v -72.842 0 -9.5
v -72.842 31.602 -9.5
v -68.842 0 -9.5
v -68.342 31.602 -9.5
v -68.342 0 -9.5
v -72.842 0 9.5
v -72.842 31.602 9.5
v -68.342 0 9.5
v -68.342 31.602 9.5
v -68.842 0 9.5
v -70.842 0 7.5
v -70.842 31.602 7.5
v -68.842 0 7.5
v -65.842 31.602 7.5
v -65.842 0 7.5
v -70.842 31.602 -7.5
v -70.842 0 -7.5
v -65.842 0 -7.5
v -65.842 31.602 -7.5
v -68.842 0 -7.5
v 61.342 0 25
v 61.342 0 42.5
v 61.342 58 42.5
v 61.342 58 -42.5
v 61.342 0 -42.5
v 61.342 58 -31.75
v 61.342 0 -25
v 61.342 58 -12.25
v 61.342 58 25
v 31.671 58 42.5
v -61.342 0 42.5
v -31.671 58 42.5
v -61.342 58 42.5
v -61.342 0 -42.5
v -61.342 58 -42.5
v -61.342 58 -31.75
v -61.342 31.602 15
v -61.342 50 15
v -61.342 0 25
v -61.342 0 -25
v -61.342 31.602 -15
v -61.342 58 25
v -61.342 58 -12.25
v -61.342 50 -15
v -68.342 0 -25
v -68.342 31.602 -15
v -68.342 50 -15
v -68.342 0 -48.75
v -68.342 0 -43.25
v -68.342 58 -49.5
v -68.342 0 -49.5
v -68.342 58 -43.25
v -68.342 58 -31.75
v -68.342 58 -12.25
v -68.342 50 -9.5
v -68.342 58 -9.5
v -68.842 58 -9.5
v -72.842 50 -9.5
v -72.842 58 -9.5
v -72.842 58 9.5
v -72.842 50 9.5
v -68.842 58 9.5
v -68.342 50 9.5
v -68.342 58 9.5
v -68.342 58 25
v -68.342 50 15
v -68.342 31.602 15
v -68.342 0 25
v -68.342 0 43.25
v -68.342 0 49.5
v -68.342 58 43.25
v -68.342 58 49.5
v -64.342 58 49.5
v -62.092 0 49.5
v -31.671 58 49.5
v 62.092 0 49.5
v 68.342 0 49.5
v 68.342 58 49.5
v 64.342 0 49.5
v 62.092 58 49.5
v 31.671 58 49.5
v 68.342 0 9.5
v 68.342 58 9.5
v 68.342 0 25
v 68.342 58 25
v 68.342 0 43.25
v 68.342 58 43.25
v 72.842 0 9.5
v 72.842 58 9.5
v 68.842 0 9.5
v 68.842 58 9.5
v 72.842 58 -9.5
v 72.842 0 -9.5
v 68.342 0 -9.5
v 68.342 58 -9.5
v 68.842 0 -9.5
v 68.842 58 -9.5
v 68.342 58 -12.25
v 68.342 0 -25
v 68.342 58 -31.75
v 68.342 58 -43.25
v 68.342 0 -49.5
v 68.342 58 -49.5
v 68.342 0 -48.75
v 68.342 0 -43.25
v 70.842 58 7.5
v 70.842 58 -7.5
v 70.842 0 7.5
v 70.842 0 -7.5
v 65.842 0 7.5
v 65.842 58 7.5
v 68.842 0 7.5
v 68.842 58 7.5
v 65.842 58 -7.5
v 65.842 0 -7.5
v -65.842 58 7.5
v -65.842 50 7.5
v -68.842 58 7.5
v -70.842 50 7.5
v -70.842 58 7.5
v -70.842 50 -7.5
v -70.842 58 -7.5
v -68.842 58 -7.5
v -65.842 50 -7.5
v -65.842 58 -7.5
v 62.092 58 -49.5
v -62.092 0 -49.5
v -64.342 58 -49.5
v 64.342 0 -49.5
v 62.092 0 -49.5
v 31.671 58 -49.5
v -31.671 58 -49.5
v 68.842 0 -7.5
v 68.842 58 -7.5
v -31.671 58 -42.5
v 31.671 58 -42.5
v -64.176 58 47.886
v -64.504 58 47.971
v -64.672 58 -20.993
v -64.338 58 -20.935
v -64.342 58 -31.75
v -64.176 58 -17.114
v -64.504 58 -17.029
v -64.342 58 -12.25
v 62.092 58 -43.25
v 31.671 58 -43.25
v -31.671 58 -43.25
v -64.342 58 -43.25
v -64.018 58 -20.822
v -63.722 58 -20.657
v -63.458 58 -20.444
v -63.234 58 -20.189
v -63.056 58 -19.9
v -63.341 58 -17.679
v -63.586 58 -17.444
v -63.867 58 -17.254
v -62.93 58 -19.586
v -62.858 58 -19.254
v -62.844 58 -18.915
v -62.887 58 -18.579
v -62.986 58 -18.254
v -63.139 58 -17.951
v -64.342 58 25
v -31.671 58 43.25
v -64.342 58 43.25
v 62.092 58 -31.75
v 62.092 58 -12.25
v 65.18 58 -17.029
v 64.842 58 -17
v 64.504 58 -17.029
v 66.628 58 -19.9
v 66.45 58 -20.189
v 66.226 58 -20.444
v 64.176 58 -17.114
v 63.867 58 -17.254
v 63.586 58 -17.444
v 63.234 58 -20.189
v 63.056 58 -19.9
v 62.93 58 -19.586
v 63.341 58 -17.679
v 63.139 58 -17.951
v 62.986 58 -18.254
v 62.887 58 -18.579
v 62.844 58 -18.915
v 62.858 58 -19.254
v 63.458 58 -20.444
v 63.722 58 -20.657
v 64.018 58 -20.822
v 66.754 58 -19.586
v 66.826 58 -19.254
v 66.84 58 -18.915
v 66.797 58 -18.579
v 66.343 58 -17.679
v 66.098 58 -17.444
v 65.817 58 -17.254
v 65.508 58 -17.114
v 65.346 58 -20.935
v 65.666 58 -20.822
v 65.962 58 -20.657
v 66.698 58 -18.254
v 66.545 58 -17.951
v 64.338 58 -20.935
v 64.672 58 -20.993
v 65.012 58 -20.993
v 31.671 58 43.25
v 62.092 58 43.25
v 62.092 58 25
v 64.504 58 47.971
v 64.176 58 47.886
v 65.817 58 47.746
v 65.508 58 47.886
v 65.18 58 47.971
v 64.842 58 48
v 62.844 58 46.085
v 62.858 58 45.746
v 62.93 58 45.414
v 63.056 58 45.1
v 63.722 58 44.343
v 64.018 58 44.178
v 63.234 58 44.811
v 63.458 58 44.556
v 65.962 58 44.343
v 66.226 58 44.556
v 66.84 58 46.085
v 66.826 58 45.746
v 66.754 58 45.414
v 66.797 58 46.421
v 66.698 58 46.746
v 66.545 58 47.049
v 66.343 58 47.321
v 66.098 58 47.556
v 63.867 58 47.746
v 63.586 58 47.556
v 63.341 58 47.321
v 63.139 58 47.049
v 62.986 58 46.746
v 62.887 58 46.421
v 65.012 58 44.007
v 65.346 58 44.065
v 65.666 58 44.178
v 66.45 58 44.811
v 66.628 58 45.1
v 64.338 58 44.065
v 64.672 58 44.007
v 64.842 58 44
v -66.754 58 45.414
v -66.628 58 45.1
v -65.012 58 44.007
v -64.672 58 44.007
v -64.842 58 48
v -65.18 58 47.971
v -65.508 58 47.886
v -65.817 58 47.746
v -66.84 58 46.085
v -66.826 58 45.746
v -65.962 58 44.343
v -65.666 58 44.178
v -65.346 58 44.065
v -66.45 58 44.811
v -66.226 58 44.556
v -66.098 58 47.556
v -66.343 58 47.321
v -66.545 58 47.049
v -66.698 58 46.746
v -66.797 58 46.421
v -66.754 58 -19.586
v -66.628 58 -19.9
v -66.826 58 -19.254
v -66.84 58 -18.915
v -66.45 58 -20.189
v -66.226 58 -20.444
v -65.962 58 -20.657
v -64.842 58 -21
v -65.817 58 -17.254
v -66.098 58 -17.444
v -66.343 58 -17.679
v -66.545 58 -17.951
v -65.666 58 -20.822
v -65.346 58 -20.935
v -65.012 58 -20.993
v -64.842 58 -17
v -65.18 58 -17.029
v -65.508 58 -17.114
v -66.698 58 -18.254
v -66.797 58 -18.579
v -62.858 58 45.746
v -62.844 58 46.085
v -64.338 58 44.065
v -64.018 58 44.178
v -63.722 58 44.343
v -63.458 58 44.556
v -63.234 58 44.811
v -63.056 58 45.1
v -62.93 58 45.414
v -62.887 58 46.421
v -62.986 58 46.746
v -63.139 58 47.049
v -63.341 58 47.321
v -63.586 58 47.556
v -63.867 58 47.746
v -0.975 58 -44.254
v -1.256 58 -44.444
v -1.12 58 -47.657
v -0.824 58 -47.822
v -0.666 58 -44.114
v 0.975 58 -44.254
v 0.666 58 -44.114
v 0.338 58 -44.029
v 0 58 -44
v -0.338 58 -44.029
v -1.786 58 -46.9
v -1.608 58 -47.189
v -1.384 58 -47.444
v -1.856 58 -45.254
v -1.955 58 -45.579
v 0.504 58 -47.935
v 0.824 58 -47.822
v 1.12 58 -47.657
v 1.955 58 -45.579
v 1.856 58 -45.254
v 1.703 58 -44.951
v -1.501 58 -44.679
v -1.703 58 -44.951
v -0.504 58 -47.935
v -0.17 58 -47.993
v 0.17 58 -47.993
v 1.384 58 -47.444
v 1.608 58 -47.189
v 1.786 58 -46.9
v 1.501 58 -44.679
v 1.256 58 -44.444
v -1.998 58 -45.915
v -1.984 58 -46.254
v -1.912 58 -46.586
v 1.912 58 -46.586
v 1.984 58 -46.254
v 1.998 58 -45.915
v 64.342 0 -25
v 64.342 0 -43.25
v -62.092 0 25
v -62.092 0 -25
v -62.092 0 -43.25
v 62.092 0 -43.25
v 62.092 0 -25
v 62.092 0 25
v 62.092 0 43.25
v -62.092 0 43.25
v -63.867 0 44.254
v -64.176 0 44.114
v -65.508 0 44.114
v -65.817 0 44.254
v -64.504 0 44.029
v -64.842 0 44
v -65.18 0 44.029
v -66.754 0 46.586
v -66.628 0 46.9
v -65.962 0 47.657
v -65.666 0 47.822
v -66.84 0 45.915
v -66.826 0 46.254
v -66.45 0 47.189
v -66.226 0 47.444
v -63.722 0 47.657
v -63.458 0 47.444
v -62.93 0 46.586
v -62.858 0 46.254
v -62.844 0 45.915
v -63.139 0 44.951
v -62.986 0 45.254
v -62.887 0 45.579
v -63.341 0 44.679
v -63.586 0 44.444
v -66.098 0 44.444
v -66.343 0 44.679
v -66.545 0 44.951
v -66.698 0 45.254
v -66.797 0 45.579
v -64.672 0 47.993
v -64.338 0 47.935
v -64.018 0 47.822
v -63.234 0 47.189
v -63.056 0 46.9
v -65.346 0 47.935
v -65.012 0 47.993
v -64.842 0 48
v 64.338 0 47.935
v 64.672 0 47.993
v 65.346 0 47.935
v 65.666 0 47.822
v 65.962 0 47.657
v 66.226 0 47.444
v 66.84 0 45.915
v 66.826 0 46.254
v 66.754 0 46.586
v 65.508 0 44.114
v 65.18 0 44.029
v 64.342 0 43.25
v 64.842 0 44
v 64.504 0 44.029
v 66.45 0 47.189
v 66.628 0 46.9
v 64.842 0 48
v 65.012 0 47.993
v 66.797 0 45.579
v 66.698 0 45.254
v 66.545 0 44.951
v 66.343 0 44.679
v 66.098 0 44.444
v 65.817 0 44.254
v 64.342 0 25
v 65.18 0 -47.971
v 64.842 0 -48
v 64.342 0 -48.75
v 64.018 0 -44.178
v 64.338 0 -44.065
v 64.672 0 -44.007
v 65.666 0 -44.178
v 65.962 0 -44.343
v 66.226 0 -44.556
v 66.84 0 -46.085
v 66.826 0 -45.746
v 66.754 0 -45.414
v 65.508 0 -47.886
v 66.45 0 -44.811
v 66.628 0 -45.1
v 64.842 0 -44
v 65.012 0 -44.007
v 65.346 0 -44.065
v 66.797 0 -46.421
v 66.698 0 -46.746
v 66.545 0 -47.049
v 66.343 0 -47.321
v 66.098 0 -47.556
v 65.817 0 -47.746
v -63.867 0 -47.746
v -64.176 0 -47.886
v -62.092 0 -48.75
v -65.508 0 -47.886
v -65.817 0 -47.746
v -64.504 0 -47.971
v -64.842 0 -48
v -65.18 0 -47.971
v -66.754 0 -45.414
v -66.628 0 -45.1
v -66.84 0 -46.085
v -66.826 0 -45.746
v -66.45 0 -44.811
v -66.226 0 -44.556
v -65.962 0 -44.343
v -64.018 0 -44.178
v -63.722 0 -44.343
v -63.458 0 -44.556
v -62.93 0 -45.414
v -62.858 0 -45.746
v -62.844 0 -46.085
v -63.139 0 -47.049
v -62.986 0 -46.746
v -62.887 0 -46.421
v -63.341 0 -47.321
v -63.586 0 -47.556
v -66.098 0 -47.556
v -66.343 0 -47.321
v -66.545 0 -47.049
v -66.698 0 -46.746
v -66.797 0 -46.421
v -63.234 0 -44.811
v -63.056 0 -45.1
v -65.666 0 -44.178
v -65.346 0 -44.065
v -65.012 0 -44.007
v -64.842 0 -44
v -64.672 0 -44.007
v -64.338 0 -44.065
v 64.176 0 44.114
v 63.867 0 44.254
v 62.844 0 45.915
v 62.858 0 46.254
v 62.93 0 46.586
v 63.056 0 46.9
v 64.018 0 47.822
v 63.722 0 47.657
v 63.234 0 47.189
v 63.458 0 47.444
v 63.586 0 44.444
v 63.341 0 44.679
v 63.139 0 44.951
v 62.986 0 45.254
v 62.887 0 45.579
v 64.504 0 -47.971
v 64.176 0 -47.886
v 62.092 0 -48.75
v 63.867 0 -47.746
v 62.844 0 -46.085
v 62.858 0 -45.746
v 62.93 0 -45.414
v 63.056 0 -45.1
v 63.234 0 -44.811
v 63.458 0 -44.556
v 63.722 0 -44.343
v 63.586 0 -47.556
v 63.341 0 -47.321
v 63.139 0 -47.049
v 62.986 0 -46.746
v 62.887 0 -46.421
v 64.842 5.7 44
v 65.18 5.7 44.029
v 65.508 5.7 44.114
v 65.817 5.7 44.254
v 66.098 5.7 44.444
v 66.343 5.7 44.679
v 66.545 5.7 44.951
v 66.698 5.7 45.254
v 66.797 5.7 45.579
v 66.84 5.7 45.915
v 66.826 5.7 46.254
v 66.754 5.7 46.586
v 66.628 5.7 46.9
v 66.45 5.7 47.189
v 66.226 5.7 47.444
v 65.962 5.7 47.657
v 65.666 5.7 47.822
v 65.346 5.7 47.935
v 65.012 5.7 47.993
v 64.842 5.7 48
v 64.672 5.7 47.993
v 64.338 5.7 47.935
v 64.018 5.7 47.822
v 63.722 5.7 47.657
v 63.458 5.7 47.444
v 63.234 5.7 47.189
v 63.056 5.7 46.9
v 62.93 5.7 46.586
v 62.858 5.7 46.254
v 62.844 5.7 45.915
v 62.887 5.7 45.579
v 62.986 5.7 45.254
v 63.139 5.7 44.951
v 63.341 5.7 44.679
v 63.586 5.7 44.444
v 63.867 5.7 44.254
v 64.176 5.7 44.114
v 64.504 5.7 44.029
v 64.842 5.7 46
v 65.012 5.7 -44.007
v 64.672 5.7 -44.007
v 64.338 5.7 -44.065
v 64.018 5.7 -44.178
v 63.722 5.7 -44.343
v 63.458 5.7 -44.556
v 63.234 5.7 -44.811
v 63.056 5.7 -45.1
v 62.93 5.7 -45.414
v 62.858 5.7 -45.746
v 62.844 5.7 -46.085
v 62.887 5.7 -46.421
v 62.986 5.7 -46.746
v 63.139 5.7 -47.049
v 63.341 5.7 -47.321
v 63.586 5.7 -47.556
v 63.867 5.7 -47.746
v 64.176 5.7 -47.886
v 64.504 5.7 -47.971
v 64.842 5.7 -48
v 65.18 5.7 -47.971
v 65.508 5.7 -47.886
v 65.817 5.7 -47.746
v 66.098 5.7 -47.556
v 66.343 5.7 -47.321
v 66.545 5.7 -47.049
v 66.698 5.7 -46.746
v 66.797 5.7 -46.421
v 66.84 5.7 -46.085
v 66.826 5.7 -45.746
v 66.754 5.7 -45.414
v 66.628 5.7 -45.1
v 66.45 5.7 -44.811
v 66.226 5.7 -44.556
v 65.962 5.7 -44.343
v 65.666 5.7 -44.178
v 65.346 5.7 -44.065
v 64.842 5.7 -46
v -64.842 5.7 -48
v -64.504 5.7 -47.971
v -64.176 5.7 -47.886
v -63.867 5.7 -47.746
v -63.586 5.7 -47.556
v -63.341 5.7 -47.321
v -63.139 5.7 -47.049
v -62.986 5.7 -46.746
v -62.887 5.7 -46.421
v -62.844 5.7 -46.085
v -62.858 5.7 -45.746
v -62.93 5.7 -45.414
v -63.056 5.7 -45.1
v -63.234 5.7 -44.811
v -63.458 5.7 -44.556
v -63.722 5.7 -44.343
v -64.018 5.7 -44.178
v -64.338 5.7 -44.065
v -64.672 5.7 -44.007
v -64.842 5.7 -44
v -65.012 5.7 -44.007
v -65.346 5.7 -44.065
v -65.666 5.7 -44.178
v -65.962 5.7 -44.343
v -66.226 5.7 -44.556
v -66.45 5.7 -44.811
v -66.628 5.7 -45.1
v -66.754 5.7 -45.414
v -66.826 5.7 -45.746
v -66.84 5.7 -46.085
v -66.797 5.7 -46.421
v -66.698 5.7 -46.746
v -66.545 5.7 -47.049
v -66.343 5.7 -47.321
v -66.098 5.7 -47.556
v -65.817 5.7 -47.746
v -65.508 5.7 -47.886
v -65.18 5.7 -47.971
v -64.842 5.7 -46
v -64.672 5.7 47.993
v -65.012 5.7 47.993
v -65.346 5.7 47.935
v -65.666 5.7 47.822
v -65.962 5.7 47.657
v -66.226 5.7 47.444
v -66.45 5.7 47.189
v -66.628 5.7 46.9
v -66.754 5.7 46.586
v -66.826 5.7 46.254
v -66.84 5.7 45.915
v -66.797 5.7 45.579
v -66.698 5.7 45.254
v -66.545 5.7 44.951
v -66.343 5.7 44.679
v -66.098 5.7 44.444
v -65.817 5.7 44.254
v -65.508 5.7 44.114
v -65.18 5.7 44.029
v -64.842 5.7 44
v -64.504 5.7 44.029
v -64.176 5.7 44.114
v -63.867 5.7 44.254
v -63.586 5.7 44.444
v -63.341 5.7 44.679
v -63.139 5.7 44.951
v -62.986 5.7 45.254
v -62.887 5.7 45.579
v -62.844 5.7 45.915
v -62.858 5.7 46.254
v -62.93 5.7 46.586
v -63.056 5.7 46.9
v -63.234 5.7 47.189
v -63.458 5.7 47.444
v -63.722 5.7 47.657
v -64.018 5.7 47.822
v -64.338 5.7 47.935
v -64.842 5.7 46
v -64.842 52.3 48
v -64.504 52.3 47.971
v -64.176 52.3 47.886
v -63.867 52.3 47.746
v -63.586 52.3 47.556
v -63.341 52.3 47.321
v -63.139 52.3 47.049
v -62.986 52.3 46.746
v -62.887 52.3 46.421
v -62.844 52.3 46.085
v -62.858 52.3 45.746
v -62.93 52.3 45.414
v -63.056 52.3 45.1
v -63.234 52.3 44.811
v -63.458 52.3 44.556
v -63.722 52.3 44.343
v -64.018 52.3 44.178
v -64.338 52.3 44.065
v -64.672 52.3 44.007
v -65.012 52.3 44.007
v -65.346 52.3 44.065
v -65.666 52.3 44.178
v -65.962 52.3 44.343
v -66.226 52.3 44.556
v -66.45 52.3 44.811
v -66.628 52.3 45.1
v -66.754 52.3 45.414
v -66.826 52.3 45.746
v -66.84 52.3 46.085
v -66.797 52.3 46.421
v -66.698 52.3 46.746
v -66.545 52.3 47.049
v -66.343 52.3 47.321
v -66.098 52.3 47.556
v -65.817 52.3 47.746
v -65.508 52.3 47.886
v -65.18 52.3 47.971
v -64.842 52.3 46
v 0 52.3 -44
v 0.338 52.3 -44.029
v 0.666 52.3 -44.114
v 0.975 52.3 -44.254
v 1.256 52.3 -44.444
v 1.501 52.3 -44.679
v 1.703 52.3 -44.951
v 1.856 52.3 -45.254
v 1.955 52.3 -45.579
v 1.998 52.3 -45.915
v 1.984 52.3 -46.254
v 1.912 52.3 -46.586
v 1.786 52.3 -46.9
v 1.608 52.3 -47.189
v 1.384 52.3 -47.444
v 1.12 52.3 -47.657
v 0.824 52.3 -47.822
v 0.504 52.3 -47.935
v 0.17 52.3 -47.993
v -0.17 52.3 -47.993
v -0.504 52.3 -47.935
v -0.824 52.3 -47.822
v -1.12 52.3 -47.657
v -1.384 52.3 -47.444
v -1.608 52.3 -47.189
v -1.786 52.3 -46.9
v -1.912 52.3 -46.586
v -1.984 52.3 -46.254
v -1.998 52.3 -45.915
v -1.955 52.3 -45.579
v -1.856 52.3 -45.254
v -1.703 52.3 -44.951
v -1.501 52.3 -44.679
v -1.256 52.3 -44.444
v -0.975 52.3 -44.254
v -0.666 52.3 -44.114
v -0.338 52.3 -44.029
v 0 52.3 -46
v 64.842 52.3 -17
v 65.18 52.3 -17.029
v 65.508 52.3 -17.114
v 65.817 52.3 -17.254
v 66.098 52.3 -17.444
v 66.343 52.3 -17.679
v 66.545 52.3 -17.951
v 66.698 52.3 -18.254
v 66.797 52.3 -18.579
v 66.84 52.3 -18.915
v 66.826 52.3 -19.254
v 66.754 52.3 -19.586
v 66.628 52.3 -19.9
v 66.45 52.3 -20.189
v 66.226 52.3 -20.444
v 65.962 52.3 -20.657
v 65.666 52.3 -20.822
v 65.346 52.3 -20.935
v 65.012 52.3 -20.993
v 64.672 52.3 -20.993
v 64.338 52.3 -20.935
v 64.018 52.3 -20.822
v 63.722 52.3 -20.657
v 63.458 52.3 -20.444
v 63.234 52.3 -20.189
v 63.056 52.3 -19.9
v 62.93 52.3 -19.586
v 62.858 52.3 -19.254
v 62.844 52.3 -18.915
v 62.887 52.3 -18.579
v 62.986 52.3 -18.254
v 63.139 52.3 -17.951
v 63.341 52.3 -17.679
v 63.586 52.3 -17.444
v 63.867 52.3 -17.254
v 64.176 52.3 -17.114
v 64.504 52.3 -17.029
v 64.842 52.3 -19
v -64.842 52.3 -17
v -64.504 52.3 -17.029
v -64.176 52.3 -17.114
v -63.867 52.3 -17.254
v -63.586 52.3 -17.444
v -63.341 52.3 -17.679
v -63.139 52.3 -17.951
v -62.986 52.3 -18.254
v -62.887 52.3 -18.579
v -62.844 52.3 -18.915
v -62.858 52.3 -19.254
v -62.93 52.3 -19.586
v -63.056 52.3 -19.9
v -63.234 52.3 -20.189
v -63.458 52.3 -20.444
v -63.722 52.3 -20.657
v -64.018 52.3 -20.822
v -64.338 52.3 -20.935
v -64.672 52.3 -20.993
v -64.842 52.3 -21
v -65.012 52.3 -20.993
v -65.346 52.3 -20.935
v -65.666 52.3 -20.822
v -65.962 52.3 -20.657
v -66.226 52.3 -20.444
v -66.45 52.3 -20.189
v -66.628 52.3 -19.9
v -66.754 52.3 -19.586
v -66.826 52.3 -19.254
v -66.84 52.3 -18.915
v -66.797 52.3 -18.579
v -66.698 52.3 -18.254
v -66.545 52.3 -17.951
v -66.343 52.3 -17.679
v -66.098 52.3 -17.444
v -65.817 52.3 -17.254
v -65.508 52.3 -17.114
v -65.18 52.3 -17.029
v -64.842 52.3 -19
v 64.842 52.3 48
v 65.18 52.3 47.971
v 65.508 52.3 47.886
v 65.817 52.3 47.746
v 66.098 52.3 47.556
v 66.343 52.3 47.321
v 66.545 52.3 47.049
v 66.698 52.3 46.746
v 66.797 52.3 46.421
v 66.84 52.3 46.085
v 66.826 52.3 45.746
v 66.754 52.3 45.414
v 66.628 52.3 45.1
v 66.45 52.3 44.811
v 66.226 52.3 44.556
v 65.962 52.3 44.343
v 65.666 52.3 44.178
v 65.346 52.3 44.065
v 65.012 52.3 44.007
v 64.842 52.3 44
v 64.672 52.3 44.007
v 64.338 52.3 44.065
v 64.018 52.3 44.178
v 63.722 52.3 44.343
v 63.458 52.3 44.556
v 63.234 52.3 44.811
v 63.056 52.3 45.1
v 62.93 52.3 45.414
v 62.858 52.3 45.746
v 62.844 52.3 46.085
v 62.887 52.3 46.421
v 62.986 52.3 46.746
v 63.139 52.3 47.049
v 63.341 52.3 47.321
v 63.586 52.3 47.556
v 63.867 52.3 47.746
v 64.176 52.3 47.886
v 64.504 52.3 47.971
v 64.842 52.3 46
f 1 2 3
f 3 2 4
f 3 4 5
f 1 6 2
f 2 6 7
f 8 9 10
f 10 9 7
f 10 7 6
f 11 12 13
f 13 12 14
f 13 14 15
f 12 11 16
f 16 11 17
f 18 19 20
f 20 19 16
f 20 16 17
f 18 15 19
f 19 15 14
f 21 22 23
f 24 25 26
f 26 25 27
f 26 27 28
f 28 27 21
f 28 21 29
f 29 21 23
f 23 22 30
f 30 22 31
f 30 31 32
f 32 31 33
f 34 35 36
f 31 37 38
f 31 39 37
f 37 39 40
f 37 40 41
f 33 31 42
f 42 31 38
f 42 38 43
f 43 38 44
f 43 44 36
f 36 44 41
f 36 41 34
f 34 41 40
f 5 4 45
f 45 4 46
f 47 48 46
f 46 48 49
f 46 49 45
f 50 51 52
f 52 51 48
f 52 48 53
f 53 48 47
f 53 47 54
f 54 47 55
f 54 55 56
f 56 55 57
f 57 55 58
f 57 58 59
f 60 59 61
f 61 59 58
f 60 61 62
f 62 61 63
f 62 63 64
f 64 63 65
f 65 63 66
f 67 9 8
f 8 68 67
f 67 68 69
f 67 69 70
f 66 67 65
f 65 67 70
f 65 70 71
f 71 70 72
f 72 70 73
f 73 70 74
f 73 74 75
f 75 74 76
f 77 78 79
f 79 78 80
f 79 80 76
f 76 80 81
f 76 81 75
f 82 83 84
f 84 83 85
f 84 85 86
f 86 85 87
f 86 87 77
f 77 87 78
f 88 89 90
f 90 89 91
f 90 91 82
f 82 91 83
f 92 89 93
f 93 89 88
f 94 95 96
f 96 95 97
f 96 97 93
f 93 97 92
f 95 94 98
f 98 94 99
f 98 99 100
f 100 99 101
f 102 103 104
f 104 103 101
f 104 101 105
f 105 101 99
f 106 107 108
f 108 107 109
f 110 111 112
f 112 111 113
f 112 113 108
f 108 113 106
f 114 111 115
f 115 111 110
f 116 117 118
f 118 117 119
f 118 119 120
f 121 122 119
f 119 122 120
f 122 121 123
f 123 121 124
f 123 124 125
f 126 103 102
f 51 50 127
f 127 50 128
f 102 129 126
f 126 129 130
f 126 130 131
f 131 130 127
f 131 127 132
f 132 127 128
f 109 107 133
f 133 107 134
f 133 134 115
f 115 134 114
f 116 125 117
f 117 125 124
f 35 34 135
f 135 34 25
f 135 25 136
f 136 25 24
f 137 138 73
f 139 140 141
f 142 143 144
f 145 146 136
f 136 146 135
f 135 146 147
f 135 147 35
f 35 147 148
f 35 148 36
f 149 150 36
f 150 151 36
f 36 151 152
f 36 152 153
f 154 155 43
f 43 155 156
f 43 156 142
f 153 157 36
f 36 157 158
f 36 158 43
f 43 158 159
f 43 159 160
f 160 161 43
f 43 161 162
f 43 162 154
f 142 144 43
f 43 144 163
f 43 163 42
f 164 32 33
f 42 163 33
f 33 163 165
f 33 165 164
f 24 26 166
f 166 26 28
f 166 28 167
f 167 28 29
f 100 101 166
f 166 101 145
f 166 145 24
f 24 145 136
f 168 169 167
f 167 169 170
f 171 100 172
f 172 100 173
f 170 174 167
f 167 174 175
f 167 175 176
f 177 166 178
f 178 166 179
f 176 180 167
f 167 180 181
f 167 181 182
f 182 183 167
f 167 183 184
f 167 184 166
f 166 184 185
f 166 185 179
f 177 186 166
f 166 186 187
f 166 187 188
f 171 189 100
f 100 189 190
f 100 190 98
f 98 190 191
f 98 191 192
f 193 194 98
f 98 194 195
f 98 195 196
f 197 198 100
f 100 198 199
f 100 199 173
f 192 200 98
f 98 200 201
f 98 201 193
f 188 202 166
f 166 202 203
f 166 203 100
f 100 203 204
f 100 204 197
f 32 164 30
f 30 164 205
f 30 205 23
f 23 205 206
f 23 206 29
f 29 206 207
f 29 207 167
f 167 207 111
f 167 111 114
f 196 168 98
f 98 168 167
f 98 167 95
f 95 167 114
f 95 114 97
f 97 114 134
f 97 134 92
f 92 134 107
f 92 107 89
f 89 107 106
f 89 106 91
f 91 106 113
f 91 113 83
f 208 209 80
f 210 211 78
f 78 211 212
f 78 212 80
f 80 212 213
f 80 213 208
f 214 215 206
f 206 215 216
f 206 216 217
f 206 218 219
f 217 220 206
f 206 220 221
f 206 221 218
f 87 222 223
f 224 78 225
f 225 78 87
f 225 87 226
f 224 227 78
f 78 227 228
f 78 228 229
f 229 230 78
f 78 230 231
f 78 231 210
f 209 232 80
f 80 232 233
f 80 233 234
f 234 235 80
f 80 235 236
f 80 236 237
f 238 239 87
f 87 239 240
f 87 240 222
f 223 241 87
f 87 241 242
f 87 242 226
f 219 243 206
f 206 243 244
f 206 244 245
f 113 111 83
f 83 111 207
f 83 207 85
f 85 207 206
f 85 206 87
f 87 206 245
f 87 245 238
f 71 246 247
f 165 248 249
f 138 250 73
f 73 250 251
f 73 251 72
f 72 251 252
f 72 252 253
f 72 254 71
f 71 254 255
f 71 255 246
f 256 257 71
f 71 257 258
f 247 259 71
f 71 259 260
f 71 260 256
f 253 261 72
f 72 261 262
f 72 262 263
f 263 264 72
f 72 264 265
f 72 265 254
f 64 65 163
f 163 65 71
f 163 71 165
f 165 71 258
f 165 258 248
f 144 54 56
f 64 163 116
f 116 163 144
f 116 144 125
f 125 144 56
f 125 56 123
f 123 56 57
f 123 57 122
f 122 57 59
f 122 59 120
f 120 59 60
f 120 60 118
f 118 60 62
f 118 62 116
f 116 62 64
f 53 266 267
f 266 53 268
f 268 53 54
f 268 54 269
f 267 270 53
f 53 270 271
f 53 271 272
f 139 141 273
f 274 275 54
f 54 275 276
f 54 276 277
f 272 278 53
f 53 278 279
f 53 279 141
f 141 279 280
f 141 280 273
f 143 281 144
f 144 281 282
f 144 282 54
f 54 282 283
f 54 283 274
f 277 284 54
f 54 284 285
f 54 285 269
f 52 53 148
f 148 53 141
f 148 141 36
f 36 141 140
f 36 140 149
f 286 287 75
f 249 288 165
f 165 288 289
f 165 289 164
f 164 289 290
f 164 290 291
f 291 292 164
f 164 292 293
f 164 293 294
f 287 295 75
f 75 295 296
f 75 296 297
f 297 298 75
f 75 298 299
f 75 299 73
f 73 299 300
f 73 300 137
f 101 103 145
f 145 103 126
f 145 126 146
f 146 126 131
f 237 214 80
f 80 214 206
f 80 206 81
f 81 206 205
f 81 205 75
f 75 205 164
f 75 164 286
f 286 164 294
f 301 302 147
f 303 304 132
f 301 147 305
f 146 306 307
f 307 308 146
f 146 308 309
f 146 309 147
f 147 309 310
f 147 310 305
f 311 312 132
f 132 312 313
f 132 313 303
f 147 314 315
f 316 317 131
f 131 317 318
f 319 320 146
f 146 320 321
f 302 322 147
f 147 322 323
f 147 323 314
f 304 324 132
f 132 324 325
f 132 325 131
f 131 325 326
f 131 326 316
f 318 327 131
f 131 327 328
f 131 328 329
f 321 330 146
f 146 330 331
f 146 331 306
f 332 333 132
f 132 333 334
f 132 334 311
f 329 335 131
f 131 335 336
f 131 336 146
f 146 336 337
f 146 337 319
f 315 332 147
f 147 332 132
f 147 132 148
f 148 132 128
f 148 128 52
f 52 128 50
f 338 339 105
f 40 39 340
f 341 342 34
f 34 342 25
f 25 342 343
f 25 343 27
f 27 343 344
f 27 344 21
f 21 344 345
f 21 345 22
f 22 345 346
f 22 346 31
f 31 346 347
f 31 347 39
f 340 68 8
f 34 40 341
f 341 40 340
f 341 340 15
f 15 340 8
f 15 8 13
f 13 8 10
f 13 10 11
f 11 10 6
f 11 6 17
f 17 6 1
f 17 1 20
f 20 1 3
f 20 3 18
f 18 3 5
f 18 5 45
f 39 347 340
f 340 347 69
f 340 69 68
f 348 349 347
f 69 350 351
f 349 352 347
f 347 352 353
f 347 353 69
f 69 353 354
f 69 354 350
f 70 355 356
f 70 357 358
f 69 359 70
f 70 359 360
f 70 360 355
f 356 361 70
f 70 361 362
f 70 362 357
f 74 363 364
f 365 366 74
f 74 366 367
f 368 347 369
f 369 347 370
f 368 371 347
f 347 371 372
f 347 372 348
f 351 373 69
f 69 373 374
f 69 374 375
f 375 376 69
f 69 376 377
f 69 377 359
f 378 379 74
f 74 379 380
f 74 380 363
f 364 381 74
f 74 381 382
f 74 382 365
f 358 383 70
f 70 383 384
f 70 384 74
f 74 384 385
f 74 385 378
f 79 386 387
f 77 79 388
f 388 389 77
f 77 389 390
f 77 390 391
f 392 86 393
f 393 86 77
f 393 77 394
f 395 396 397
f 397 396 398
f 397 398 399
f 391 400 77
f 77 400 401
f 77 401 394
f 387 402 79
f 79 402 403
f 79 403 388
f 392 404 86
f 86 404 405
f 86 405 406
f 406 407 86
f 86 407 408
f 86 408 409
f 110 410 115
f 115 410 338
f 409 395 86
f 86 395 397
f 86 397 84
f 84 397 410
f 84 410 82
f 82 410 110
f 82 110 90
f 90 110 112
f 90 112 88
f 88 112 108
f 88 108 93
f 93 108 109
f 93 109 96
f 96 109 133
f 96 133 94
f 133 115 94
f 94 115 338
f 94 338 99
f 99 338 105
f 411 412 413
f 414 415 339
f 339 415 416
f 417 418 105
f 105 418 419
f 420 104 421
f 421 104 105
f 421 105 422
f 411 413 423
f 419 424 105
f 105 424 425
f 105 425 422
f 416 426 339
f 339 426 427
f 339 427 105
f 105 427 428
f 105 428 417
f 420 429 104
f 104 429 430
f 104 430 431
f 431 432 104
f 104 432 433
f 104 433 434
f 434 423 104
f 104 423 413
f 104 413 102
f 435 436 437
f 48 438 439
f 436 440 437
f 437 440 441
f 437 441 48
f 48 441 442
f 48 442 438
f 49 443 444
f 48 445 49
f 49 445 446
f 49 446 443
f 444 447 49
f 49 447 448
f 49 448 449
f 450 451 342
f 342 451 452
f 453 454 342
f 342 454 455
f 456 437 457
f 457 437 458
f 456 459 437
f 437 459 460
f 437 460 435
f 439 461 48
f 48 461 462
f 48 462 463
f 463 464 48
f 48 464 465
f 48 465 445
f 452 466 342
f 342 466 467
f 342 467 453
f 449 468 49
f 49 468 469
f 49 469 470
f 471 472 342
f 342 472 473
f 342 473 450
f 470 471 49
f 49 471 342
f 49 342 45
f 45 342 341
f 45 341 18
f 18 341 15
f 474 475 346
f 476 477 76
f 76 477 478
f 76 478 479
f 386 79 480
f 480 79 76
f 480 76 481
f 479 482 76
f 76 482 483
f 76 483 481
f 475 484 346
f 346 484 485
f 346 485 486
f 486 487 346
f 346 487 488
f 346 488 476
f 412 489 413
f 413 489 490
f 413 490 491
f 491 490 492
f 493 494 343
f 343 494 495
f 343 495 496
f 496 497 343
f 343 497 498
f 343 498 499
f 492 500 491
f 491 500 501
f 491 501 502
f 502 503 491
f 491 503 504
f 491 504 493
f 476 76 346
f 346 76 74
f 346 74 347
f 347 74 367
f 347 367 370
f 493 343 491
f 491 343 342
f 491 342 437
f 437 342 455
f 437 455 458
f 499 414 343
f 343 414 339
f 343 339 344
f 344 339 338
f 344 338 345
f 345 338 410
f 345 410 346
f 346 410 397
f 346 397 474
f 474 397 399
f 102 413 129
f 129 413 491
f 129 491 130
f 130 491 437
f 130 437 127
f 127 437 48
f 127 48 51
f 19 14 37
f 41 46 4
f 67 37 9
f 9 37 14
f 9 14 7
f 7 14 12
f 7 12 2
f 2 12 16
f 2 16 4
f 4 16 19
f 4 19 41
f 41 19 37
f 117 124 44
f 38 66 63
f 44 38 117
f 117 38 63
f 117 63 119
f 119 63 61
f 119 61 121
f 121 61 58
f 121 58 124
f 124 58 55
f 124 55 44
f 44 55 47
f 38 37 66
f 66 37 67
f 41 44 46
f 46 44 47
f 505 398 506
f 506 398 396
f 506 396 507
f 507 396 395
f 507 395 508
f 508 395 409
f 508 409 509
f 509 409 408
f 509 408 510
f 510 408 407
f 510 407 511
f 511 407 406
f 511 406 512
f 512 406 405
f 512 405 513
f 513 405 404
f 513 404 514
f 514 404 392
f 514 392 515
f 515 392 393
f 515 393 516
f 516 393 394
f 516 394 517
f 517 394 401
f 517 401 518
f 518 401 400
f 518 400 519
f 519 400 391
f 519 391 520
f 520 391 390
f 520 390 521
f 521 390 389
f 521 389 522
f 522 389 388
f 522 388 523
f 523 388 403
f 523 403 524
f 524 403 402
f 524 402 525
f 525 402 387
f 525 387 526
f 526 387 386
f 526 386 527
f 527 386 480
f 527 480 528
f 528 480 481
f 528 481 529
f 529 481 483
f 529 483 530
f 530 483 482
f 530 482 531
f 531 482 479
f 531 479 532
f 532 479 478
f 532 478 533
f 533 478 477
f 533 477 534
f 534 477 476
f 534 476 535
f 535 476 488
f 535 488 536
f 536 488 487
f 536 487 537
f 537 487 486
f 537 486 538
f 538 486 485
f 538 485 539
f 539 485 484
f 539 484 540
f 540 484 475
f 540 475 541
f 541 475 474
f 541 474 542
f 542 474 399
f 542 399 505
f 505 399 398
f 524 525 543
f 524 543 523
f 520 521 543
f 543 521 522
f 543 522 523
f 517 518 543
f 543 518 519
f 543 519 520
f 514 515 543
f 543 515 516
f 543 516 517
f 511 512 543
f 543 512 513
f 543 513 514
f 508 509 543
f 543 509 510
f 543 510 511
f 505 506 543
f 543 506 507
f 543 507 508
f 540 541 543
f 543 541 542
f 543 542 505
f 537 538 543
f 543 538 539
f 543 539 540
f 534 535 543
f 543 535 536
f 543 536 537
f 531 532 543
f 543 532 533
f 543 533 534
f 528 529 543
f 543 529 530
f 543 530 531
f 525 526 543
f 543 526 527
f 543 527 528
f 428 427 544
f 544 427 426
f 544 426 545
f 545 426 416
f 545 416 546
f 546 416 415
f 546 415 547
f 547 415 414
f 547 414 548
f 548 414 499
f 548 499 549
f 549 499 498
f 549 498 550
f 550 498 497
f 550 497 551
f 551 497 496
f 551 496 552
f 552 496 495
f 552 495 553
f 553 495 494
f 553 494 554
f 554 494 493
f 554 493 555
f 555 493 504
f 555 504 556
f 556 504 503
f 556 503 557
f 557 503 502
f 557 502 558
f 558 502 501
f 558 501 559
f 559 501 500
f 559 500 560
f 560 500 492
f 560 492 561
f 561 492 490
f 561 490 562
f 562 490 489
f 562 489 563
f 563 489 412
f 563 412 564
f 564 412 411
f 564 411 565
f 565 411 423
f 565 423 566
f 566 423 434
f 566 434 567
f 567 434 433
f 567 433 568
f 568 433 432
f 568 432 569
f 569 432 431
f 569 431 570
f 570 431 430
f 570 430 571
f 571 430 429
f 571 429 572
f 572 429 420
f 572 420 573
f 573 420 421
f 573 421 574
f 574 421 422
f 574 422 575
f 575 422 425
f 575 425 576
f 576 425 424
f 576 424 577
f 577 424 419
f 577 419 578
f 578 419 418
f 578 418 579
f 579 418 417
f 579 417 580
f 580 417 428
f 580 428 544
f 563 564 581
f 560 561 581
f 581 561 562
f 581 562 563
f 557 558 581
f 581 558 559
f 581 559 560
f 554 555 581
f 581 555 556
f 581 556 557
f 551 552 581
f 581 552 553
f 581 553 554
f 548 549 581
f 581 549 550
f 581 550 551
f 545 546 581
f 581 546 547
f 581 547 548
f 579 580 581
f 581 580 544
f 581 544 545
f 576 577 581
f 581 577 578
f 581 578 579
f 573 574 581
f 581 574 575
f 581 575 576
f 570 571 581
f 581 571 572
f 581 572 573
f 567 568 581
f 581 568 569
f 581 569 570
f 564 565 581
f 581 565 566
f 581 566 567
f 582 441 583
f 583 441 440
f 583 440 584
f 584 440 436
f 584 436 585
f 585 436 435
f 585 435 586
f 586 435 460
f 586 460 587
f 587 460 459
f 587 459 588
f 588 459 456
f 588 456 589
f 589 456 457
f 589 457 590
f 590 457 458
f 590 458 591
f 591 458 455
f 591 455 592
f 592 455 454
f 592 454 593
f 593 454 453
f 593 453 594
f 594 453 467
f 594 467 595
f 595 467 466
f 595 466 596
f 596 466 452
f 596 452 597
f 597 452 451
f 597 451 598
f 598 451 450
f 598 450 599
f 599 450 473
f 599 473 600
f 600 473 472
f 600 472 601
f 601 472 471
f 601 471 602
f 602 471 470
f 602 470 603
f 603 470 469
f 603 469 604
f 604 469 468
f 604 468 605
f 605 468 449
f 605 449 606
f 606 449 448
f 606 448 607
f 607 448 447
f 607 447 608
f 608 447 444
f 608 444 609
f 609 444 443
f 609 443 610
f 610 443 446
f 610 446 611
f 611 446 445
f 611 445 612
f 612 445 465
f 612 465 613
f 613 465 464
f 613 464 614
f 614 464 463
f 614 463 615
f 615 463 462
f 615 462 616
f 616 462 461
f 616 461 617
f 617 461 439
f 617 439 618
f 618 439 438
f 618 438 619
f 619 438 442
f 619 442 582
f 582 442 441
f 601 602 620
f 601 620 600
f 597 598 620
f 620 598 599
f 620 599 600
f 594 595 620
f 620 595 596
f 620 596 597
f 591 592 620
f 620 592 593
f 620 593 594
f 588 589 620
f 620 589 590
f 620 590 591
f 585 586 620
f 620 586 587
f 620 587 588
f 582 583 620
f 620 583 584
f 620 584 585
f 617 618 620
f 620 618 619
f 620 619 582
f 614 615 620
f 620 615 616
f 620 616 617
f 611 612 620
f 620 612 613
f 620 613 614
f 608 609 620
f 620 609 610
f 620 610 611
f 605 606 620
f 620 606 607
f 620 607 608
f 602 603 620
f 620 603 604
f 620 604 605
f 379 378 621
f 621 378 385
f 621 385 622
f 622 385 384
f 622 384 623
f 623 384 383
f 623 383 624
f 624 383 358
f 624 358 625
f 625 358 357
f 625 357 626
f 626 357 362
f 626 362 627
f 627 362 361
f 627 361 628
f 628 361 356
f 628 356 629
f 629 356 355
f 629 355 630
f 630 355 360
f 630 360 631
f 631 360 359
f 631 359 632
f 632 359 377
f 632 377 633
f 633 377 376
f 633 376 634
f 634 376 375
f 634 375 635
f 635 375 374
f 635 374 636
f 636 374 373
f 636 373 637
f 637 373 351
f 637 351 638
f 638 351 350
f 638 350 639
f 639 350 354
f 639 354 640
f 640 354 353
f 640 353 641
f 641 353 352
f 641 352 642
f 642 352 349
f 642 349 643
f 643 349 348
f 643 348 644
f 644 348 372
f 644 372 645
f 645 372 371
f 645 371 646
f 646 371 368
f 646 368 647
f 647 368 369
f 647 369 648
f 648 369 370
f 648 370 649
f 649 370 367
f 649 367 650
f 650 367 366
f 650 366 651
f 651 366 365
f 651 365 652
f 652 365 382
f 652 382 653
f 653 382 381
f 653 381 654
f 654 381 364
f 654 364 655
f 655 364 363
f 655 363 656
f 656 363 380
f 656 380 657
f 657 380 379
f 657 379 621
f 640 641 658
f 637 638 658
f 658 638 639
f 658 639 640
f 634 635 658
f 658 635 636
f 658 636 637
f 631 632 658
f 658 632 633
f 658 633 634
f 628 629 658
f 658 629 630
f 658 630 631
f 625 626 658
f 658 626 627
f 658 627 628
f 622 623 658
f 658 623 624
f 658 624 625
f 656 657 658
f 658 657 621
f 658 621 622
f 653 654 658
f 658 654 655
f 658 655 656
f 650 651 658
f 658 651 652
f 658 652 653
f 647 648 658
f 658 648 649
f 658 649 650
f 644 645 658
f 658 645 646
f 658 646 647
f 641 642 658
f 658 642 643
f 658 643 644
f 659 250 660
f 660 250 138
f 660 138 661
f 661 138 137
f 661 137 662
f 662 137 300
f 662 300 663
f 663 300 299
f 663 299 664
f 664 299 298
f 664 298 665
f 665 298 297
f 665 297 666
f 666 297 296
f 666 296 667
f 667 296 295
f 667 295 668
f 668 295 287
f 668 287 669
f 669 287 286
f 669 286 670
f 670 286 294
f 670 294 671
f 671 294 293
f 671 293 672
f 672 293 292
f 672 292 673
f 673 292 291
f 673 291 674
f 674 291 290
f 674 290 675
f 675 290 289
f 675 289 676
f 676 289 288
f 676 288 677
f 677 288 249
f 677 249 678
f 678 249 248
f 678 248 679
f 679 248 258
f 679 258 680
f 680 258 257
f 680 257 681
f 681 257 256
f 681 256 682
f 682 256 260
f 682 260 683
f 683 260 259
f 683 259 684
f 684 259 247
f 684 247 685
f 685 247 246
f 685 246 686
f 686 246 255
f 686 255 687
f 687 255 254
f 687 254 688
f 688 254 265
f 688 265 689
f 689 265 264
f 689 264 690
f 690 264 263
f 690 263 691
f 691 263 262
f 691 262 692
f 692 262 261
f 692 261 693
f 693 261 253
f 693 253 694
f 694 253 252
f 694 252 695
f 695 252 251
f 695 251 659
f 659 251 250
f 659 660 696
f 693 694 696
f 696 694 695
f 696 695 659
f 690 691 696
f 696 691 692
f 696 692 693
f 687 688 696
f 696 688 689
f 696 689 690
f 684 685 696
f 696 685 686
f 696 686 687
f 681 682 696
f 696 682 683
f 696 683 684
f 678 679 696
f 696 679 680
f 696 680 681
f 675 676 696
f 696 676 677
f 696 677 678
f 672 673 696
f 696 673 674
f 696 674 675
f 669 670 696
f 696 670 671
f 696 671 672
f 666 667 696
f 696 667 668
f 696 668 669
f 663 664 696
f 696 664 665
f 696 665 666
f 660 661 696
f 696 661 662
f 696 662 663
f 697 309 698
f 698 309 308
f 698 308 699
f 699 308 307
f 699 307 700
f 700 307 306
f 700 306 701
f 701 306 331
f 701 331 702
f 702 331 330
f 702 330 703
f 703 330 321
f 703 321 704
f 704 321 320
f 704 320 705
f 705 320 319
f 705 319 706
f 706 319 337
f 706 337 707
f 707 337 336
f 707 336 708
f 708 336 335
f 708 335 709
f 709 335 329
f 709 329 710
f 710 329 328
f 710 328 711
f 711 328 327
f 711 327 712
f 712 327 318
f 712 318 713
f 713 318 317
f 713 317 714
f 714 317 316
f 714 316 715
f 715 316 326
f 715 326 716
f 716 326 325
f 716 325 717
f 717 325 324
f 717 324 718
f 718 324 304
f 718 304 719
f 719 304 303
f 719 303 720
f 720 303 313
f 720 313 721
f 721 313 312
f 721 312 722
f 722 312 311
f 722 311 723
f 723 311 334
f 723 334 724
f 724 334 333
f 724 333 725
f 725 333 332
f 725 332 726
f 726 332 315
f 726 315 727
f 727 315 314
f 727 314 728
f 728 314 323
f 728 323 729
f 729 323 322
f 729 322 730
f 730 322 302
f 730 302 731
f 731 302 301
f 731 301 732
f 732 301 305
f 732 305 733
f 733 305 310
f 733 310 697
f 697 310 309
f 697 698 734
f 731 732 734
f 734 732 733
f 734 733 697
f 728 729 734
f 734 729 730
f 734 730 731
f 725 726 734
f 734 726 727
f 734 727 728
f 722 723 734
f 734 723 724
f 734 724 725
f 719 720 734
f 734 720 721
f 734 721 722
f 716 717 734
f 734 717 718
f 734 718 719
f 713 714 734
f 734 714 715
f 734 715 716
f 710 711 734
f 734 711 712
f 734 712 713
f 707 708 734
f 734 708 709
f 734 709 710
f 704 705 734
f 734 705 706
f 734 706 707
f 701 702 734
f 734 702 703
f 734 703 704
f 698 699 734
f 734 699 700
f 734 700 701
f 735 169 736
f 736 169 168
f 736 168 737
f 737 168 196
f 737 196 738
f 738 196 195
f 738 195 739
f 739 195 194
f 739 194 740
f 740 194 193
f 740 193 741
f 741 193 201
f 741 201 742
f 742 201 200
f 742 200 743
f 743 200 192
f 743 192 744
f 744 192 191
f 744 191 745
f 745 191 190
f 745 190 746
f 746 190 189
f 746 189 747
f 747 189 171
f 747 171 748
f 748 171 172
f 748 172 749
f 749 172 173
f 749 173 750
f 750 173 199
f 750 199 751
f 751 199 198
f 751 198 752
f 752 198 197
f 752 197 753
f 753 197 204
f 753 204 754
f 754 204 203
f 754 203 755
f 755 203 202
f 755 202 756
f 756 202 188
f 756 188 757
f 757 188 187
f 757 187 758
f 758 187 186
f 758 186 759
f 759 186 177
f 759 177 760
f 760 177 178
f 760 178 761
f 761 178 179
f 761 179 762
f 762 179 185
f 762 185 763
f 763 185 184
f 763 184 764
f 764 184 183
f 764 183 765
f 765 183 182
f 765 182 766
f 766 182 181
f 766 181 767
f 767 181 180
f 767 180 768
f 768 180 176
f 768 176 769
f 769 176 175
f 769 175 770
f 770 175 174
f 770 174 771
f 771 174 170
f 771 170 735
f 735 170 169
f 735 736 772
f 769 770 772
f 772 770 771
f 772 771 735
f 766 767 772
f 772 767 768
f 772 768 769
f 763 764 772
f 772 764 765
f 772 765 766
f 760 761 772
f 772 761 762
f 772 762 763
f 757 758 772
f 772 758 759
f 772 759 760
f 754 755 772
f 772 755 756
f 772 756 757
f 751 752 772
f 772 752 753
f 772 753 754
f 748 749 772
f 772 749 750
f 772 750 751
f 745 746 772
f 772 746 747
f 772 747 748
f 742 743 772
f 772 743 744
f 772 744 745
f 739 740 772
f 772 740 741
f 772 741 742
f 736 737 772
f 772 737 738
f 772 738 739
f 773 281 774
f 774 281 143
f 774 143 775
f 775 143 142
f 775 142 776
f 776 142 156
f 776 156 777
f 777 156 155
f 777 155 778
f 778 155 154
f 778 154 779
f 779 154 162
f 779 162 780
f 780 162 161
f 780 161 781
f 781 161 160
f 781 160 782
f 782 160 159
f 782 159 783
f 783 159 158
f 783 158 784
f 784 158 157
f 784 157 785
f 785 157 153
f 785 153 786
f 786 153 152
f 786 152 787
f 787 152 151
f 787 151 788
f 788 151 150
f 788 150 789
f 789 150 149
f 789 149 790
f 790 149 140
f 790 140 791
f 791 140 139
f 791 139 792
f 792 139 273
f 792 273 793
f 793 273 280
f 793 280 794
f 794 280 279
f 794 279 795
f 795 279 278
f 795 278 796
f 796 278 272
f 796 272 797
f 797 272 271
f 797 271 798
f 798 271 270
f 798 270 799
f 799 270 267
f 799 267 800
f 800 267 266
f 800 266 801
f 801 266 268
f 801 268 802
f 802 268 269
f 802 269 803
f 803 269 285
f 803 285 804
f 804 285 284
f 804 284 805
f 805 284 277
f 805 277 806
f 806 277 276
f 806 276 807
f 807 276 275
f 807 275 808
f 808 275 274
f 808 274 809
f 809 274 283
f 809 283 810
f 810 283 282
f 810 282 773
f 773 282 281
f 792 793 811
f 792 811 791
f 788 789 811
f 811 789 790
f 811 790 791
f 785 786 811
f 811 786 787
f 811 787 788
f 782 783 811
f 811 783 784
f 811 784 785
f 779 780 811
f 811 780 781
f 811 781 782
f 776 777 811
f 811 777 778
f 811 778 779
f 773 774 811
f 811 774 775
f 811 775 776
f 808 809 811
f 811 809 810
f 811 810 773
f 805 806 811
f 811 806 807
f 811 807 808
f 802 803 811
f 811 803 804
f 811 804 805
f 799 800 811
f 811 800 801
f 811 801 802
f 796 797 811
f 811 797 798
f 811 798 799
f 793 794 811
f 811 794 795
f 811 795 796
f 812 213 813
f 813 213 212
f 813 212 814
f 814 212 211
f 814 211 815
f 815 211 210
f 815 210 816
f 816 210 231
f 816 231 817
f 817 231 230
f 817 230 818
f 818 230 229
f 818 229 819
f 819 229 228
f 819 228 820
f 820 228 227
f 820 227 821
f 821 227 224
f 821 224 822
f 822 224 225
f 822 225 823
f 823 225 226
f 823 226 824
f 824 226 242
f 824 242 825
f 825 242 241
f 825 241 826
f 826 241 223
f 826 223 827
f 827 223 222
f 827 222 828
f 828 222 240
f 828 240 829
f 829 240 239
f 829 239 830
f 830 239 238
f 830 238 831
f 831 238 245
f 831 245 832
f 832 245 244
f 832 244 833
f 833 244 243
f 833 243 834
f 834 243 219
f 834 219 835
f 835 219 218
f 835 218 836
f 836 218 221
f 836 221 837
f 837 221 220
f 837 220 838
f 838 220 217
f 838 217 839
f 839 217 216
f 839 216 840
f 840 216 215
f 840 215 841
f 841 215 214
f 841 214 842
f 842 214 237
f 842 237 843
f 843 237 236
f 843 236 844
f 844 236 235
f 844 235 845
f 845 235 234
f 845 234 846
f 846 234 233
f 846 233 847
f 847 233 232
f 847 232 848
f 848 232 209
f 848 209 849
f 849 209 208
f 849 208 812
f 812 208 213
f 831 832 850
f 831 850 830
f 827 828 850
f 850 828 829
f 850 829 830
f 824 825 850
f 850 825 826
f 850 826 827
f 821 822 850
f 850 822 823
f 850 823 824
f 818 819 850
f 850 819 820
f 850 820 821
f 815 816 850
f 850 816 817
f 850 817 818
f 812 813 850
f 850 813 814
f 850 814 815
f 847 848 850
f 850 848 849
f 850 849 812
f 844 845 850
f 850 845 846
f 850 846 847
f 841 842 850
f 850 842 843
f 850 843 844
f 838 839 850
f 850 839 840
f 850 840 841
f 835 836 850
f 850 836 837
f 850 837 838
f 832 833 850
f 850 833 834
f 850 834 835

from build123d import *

# Parameters (mm, degrees)
SKETCH1_W               = 122.684034766
SKETCH1_H               = 85
BOSS_EXTRUDE1_DEPTH     = 58
SKETCH2_W               = 30
SKETCH2_H               = 18.398042608
CUT_EXTRUDE1_DEPTH      = 11.5
CUT_EXTRUDE3_DEPTH      = 5.7
CUT_EXTRUDE3_DEPTH_BACK = 0.0001
SKETCH3_R               = 2
CUT_EXTRUDE4_START      = -5.7
SKETCH5_R               = 2
CUT_EXTRUDE4_DEPTH      = 5.7


with BuildPart() as part:
    # Sketch1 → Boss-Extrude1 (new body)
    # profile 1 of 5: a face of its own
    with BuildSketch(Plane(origin=(0, 0, 0), x_dir=(1, 0, 0), z_dir=(0, 1, 0))):
        Polygon((-68.342017383, -9.5), (-68.342017383, -49.5), (68.342017383, -49.5), (68.342017383, -9.5), (63.842017383, -9.5), (63.842017383, 9.5), (68.342017383, 9.5), (68.342017383, 49.5), (-68.342017383, 49.5), (-68.342017383, 9.5), (-63.842017383, 9.5), (-63.842017383, -9.5), align=None)
        Rectangle(SKETCH1_W, SKETCH1_H, mode=Mode.SUBTRACT)
    # profile 2 of 5: a face of its own
    with BuildSketch(Plane(origin=(0, 0, 0), x_dir=(1, 0, 0), z_dir=(0, 1, 0))):
        Polygon((63.842017383, -9.5), (68.342017383, -9.5), (68.342017383, -7.5), (65.842017383, -7.5), (65.842017383, 7.5), (68.342017383, 7.5), (68.342017383, 9.5), (63.842017383, 9.5), align=None)
    # profile 3 of 5: a face of its own
    with BuildSketch(Plane(origin=(0, 0, 0), x_dir=(1, 0, 0), z_dir=(0, 1, 0))):
        Polygon((68.342017383, -7.5), (68.342017383, -9.5), (72.842017383, -9.5), (72.842017383, 9.5), (68.342017383, 9.5), (68.342017383, 7.5), (70.842017383, 7.5), (70.842017383, -7.5), align=None)
    # profile 4 of 5: a face of its own
    with BuildSketch(Plane(origin=(0, 0, 0), x_dir=(1, 0, 0), z_dir=(0, 1, 0))):
        Polygon((-72.842017383, -9.5), (-68.342017383, -9.5), (-68.342017383, -7.5), (-70.842017383, -7.5), (-70.842017383, 7.5), (-68.342017383, 7.5), (-68.342017383, 9.5), (-72.842017383, 9.5), align=None)
    # profile 5 of 5: a face of its own
    with BuildSketch(Plane(origin=(0, 0, 0), x_dir=(1, 0, 0), z_dir=(0, 1, 0))):
        Polygon((-68.342017383, -7.5), (-68.342017383, -9.5), (-63.842017383, -9.5), (-63.842017383, 9.5), (-68.342017383, 9.5), (-68.342017383, 7.5), (-65.842017383, 7.5), (-65.842017383, -7.5), align=None)
    extrude(amount=BOSS_EXTRUDE1_DEPTH)

    # Sketch2 → Cut-Extrude1 (cut)
    with BuildSketch(Plane.ZY.offset(72.842017383)):
        with Locations((0, 40.800978696)):
            Rectangle(SKETCH2_W, SKETCH2_H)
    extrude(amount=-CUT_EXTRUDE1_DEPTH, mode=Mode.SUBTRACT)

    # Sketch3 → Cut-Extrude3 (cut, two sides: drawn at the far end of the back side and taken through both)
    with BuildSketch(Plane(origin=(0, 0, 0), x_dir=(1, 0, 0), z_dir=(0, 1, 0)).offset(-CUT_EXTRUDE3_DEPTH_BACK)):
        with Locations(Location((64.842017383, -46, 0), (0, 0, 270))):
            Circle(SKETCH3_R)
        with Locations(Location((64.842017383, 46, 0), (0, 0, 90))):
            Circle(SKETCH3_R)
        with Locations(Location((-64.842017383, 46, 0), (0, 0, 270))):
            Circle(SKETCH3_R)
        with Locations(Location((-64.842017383, -46, 0), (0, 0, 90))):
            Circle(SKETCH3_R)
    extrude(amount=CUT_EXTRUDE3_DEPTH + CUT_EXTRUDE3_DEPTH_BACK, mode=Mode.SUBTRACT)

    # Sketch5 → Cut-Extrude4 (cut)
    with BuildSketch(Plane(origin=(0, 58, 0), x_dir=(1, 0, 0), z_dir=(0, 1, 0)).offset(CUT_EXTRUDE4_START)):
        with Locations(Location((-64.842017383, -46, 0), (0, 0, 90))):
            Circle(SKETCH5_R)
        with Locations(Location((64.842017383, -46, 0), (0, 0, 270))):
            Circle(SKETCH5_R)
        with Locations(Location((64.842017383, 19, 0), (0, 0, 270))):
            Circle(SKETCH5_R)
        with Locations(Location((-64.842017383, 19, 0), (0, 0, 90))):
            Circle(SKETCH5_R)
        with Locations(Location((0, 46, 0), (0, 0, 270))):
            Circle(SKETCH5_R)
    extrude(amount=CUT_EXTRUDE4_DEPTH, mode=Mode.SUBTRACT)


solid = part.part
